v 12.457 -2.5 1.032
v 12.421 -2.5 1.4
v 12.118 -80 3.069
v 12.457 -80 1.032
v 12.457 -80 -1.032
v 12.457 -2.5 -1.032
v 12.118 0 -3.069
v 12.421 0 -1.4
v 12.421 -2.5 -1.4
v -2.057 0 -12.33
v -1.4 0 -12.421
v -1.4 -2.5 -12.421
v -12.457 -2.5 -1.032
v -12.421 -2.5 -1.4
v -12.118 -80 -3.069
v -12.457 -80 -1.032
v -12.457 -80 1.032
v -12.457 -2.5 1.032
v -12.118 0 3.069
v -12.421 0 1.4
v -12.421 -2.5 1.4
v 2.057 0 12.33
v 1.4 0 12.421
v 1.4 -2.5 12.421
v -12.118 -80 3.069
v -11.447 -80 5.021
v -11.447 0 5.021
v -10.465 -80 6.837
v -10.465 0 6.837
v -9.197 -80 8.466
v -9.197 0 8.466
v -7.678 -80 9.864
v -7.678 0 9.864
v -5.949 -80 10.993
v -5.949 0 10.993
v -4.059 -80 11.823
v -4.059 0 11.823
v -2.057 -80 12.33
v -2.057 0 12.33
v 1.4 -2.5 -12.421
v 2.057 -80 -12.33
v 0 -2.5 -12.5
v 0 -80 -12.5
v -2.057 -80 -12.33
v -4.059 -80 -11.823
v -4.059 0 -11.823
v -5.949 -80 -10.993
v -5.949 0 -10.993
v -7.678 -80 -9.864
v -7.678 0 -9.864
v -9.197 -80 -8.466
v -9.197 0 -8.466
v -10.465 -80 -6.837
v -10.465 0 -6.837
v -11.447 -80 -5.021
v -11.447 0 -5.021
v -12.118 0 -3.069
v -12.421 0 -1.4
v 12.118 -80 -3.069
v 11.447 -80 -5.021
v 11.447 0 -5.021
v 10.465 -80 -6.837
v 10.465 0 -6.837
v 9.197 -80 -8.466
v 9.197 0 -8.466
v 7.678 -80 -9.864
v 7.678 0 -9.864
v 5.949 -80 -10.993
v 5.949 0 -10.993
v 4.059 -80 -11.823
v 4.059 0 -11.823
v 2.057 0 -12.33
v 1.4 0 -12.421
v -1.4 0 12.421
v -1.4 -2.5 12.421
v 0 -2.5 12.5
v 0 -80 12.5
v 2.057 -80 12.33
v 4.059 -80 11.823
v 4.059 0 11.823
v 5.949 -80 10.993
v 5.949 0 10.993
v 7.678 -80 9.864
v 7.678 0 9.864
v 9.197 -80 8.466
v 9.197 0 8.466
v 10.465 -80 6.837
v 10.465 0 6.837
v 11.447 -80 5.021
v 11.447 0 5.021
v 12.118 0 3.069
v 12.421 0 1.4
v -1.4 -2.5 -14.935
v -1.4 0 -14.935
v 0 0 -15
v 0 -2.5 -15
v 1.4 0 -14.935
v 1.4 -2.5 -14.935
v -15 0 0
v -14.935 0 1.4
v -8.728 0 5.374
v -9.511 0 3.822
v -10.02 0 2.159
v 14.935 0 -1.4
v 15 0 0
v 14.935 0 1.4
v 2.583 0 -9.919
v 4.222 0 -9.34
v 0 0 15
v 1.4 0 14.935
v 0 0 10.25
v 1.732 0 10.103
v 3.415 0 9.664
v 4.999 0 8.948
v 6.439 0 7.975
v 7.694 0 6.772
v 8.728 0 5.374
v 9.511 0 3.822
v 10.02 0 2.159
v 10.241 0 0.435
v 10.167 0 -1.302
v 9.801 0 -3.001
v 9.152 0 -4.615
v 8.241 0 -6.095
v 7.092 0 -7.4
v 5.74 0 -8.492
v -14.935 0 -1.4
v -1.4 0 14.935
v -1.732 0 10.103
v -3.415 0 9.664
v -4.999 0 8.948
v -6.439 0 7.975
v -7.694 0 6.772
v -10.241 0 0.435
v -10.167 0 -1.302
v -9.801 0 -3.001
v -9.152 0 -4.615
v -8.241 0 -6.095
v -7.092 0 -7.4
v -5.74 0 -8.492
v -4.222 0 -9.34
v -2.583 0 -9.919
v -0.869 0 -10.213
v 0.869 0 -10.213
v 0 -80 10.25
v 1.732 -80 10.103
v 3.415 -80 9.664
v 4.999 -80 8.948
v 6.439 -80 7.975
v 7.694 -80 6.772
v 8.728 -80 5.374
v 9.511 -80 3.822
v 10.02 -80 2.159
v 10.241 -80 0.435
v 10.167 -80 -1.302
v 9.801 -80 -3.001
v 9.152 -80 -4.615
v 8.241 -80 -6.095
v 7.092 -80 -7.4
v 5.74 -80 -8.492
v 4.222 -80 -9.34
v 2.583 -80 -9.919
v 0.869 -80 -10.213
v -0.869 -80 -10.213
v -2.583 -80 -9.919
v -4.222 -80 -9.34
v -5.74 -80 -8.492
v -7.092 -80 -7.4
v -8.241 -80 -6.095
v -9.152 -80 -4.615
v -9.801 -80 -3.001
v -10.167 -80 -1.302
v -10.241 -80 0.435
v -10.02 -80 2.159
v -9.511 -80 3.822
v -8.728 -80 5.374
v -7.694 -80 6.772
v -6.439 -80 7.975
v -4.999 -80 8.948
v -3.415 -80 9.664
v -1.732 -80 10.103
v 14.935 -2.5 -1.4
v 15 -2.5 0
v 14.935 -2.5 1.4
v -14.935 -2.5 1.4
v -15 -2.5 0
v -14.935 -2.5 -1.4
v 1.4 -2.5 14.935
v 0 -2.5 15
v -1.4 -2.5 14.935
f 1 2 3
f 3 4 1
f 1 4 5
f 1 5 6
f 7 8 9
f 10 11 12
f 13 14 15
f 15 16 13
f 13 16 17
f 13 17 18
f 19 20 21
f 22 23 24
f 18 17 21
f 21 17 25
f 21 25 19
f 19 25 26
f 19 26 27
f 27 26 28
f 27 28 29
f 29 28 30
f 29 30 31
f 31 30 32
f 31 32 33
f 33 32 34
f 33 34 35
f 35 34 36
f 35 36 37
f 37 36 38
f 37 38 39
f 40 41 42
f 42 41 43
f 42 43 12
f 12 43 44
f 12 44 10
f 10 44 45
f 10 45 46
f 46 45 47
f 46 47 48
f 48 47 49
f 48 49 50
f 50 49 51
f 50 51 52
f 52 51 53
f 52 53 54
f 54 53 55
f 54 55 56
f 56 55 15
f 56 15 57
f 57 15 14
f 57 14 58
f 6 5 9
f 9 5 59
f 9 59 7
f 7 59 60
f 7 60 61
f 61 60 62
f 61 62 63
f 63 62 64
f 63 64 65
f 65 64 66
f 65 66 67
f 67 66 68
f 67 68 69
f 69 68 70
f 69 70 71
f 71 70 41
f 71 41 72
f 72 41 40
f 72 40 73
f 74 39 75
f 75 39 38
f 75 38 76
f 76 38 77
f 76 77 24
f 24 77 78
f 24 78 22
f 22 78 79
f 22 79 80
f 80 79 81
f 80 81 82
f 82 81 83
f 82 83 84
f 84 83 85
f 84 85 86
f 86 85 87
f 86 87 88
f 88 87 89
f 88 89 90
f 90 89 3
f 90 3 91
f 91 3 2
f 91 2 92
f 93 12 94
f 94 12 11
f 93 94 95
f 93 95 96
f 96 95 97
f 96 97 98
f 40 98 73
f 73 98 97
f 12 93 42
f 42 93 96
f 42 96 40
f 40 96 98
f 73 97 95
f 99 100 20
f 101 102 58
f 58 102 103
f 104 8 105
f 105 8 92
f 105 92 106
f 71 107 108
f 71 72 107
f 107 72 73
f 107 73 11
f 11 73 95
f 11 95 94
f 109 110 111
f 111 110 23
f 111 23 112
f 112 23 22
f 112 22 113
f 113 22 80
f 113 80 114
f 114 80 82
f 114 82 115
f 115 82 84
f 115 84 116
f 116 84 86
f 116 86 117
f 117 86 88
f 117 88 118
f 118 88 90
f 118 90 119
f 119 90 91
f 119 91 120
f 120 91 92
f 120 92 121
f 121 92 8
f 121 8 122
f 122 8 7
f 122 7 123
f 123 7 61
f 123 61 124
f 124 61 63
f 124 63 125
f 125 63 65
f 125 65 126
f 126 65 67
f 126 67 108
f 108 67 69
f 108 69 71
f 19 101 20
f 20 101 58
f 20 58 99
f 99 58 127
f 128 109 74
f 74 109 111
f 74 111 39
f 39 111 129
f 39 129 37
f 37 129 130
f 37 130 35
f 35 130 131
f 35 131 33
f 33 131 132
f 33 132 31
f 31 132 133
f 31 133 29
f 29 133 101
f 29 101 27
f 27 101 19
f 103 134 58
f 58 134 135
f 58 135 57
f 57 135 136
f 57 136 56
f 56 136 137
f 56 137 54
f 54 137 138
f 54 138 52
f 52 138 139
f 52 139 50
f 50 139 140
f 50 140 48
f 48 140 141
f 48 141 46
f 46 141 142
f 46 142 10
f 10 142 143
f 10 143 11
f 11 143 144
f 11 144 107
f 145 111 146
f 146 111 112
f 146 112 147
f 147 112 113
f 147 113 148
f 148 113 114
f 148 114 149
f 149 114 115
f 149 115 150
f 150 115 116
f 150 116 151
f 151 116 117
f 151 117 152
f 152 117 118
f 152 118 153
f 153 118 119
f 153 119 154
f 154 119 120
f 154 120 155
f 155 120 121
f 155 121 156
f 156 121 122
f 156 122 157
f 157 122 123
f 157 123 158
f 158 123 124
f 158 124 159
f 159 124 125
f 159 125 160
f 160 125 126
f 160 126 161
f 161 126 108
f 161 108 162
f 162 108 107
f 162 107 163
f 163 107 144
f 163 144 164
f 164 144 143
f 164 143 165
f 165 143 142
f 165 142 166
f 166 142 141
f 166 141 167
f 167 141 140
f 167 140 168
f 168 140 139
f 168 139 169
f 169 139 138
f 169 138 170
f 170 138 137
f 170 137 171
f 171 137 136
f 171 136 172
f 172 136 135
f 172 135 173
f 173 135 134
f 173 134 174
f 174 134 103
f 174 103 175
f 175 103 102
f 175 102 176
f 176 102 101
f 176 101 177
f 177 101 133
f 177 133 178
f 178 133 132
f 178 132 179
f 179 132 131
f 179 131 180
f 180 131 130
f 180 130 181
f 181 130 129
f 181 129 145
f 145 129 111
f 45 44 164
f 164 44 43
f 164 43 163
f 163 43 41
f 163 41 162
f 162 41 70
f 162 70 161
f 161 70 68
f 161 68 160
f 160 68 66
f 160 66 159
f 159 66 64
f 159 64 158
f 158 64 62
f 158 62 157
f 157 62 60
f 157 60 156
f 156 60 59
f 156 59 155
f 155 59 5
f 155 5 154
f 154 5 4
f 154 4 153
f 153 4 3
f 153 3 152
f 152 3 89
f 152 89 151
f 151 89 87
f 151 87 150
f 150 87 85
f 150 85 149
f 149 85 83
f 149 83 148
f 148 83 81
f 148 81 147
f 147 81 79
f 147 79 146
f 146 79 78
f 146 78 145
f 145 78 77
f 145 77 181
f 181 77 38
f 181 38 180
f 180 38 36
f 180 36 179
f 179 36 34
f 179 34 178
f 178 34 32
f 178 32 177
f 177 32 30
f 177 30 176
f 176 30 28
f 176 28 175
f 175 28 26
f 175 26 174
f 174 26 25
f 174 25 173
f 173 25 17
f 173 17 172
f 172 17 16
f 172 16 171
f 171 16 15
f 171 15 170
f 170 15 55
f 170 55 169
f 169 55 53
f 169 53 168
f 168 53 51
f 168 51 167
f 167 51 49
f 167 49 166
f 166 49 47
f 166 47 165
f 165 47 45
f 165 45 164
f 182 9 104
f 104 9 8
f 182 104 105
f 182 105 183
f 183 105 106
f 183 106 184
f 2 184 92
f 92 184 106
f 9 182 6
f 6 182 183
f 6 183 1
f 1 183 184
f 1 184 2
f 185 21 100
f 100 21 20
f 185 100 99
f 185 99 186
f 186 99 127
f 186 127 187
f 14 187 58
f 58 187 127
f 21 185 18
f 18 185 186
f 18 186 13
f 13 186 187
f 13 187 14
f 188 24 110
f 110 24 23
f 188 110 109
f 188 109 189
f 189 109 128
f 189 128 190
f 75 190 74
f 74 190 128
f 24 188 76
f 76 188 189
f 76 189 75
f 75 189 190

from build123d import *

# Parameters (mm, degrees)
BOSS_EXTRUDE1_DEPTH   = 2.5
BOSS_EXTRUDE1_2_DEPTH = 2.5
BOSS_EXTRUDE1_3_DEPTH = 2.5
BOSS_EXTRUDE1_4_DEPTH = 2.5
SKETCH1_3_R           = 10.25
BOSS_EXTRUDE2_DEPTH   = 80


with BuildPart() as part:
    # Sketch1 → Boss-Extrude1 (new body)
    with BuildSketch(Plane(origin=(0, 0, 0), x_dir=(1, 0, 0), z_dir=(0, 1, 0))):
        with BuildLine():
            ThreePointArc((-1.4, 12.421352583), (0, 12.5), (1.4, 12.421352583))
            Line((1.4, 12.421352583), (1.4, 14.934523762))
            ThreePointArc((1.4, 14.934523762), (0, 15), (-1.4, 14.934523762))
            Line((-1.4, 14.934523762), (-1.4, 12.421352583))
        make_face()
    extrude(amount=-BOSS_EXTRUDE1_DEPTH)



with BuildPart() as body_2:
    # Sketch1 → Boss-Extrude1 2 (new body)
    with BuildSketch(Plane(origin=(0, 0, 0), x_dir=(1, 0, 0), z_dir=(0, 1, 0))):
        with BuildLine():
            Line((14.934523762, 1.4), (12.421352583, 1.4))
            ThreePointArc((12.421352583, 1.4), (12.5, 0), (12.421352583, -1.4))
            Line((12.421352583, -1.4), (14.934523762, -1.4))
            ThreePointArc((14.934523762, -1.4), (15, 0), (14.934523762, 1.4))
        make_face()
    extrude(amount=-BOSS_EXTRUDE1_2_DEPTH)


with BuildPart() as body_3:
    # Sketch1 → Boss-Extrude1 3 (new body)
    with BuildSketch(Plane(origin=(0, 0, 0), x_dir=(1, 0, 0), z_dir=(0, 1, 0))):
        with BuildLine():
            ThreePointArc((-12.421352583, -1.4), (-12.5, 0), (-12.421352583, 1.4))
            Line((-12.421352583, 1.4), (-14.934523762, 1.4))
            ThreePointArc((-14.934523762, 1.4), (-15, 0), (-14.934523762, -1.4))
            Line((-14.934523762, -1.4), (-12.421352583, -1.4))
        make_face()
    extrude(amount=-BOSS_EXTRUDE1_3_DEPTH)


with BuildPart() as body_4:
    # Sketch1 → Boss-Extrude1 4 (new body)
    with BuildSketch(Plane(origin=(0, 0, 0), x_dir=(1, 0, 0), z_dir=(0, 1, 0))):
        with BuildLine():
            Line((1.4, -14.934523762), (1.4, -12.421352583))
            ThreePointArc((1.4, -12.421352583), (0, -12.5), (-1.4, -12.421352583))
            Line((-1.4, -12.421352583), (-1.4, -14.934523762))
            ThreePointArc((-1.4, -14.934523762), (0, -15), (1.4, -14.934523762))
        make_face()
    extrude(amount=-BOSS_EXTRUDE1_4_DEPTH)


with BuildPart() as part_1:
    add(part.part)

    add(body_2.part)  # Boss-Extrude2 merges body 2

    add(body_3.part)  # Boss-Extrude2 merges body 3

    add(body_4.part)  # Boss-Extrude2 merges body 4
    # Sketch1<3> → Boss-Extrude2 (add)
    with BuildSketch(Plane(origin=(0, 0, 0), x_dir=(1, 0, 0), z_dir=(0, 1, 0))):
        with BuildLine():
            ThreePointArc((12.421352583, 1.4), (8.838834765, 8.838834765), (1.4, 12.421352583))
            ThreePointArc((1.4, 12.421352583), (0, 12.5), (-1.4, 12.421352583))
            ThreePointArc((-1.4, 12.421352583), (-8.838834765, 8.838834765), (-12.421352583, 1.4))
            ThreePointArc((-12.421352583, 1.4), (-12.5, 0), (-12.421352583, -1.4))
            ThreePointArc((-12.421352583, -1.4), (-8.838834765, -8.838834765), (-1.4, -12.421352583))
            ThreePointArc((-1.4, -12.421352583), (0, -12.5), (1.4, -12.421352583))
            ThreePointArc((1.4, -12.421352583), (8.838834765, -8.838834765), (12.421352583, -1.4))
            ThreePointArc((12.421352583, -1.4), (12.480322658, -0.701103669), (12.5, 0))
            ThreePointArc((12.5, 0), (12.480322658, 0.701103669), (12.421352583, 1.4))
        make_face()
        Circle(SKETCH1_3_R, mode=Mode.SUBTRACT)
    extrude(amount=-BOSS_EXTRUDE2_DEPTH)


solid = part_1.part
